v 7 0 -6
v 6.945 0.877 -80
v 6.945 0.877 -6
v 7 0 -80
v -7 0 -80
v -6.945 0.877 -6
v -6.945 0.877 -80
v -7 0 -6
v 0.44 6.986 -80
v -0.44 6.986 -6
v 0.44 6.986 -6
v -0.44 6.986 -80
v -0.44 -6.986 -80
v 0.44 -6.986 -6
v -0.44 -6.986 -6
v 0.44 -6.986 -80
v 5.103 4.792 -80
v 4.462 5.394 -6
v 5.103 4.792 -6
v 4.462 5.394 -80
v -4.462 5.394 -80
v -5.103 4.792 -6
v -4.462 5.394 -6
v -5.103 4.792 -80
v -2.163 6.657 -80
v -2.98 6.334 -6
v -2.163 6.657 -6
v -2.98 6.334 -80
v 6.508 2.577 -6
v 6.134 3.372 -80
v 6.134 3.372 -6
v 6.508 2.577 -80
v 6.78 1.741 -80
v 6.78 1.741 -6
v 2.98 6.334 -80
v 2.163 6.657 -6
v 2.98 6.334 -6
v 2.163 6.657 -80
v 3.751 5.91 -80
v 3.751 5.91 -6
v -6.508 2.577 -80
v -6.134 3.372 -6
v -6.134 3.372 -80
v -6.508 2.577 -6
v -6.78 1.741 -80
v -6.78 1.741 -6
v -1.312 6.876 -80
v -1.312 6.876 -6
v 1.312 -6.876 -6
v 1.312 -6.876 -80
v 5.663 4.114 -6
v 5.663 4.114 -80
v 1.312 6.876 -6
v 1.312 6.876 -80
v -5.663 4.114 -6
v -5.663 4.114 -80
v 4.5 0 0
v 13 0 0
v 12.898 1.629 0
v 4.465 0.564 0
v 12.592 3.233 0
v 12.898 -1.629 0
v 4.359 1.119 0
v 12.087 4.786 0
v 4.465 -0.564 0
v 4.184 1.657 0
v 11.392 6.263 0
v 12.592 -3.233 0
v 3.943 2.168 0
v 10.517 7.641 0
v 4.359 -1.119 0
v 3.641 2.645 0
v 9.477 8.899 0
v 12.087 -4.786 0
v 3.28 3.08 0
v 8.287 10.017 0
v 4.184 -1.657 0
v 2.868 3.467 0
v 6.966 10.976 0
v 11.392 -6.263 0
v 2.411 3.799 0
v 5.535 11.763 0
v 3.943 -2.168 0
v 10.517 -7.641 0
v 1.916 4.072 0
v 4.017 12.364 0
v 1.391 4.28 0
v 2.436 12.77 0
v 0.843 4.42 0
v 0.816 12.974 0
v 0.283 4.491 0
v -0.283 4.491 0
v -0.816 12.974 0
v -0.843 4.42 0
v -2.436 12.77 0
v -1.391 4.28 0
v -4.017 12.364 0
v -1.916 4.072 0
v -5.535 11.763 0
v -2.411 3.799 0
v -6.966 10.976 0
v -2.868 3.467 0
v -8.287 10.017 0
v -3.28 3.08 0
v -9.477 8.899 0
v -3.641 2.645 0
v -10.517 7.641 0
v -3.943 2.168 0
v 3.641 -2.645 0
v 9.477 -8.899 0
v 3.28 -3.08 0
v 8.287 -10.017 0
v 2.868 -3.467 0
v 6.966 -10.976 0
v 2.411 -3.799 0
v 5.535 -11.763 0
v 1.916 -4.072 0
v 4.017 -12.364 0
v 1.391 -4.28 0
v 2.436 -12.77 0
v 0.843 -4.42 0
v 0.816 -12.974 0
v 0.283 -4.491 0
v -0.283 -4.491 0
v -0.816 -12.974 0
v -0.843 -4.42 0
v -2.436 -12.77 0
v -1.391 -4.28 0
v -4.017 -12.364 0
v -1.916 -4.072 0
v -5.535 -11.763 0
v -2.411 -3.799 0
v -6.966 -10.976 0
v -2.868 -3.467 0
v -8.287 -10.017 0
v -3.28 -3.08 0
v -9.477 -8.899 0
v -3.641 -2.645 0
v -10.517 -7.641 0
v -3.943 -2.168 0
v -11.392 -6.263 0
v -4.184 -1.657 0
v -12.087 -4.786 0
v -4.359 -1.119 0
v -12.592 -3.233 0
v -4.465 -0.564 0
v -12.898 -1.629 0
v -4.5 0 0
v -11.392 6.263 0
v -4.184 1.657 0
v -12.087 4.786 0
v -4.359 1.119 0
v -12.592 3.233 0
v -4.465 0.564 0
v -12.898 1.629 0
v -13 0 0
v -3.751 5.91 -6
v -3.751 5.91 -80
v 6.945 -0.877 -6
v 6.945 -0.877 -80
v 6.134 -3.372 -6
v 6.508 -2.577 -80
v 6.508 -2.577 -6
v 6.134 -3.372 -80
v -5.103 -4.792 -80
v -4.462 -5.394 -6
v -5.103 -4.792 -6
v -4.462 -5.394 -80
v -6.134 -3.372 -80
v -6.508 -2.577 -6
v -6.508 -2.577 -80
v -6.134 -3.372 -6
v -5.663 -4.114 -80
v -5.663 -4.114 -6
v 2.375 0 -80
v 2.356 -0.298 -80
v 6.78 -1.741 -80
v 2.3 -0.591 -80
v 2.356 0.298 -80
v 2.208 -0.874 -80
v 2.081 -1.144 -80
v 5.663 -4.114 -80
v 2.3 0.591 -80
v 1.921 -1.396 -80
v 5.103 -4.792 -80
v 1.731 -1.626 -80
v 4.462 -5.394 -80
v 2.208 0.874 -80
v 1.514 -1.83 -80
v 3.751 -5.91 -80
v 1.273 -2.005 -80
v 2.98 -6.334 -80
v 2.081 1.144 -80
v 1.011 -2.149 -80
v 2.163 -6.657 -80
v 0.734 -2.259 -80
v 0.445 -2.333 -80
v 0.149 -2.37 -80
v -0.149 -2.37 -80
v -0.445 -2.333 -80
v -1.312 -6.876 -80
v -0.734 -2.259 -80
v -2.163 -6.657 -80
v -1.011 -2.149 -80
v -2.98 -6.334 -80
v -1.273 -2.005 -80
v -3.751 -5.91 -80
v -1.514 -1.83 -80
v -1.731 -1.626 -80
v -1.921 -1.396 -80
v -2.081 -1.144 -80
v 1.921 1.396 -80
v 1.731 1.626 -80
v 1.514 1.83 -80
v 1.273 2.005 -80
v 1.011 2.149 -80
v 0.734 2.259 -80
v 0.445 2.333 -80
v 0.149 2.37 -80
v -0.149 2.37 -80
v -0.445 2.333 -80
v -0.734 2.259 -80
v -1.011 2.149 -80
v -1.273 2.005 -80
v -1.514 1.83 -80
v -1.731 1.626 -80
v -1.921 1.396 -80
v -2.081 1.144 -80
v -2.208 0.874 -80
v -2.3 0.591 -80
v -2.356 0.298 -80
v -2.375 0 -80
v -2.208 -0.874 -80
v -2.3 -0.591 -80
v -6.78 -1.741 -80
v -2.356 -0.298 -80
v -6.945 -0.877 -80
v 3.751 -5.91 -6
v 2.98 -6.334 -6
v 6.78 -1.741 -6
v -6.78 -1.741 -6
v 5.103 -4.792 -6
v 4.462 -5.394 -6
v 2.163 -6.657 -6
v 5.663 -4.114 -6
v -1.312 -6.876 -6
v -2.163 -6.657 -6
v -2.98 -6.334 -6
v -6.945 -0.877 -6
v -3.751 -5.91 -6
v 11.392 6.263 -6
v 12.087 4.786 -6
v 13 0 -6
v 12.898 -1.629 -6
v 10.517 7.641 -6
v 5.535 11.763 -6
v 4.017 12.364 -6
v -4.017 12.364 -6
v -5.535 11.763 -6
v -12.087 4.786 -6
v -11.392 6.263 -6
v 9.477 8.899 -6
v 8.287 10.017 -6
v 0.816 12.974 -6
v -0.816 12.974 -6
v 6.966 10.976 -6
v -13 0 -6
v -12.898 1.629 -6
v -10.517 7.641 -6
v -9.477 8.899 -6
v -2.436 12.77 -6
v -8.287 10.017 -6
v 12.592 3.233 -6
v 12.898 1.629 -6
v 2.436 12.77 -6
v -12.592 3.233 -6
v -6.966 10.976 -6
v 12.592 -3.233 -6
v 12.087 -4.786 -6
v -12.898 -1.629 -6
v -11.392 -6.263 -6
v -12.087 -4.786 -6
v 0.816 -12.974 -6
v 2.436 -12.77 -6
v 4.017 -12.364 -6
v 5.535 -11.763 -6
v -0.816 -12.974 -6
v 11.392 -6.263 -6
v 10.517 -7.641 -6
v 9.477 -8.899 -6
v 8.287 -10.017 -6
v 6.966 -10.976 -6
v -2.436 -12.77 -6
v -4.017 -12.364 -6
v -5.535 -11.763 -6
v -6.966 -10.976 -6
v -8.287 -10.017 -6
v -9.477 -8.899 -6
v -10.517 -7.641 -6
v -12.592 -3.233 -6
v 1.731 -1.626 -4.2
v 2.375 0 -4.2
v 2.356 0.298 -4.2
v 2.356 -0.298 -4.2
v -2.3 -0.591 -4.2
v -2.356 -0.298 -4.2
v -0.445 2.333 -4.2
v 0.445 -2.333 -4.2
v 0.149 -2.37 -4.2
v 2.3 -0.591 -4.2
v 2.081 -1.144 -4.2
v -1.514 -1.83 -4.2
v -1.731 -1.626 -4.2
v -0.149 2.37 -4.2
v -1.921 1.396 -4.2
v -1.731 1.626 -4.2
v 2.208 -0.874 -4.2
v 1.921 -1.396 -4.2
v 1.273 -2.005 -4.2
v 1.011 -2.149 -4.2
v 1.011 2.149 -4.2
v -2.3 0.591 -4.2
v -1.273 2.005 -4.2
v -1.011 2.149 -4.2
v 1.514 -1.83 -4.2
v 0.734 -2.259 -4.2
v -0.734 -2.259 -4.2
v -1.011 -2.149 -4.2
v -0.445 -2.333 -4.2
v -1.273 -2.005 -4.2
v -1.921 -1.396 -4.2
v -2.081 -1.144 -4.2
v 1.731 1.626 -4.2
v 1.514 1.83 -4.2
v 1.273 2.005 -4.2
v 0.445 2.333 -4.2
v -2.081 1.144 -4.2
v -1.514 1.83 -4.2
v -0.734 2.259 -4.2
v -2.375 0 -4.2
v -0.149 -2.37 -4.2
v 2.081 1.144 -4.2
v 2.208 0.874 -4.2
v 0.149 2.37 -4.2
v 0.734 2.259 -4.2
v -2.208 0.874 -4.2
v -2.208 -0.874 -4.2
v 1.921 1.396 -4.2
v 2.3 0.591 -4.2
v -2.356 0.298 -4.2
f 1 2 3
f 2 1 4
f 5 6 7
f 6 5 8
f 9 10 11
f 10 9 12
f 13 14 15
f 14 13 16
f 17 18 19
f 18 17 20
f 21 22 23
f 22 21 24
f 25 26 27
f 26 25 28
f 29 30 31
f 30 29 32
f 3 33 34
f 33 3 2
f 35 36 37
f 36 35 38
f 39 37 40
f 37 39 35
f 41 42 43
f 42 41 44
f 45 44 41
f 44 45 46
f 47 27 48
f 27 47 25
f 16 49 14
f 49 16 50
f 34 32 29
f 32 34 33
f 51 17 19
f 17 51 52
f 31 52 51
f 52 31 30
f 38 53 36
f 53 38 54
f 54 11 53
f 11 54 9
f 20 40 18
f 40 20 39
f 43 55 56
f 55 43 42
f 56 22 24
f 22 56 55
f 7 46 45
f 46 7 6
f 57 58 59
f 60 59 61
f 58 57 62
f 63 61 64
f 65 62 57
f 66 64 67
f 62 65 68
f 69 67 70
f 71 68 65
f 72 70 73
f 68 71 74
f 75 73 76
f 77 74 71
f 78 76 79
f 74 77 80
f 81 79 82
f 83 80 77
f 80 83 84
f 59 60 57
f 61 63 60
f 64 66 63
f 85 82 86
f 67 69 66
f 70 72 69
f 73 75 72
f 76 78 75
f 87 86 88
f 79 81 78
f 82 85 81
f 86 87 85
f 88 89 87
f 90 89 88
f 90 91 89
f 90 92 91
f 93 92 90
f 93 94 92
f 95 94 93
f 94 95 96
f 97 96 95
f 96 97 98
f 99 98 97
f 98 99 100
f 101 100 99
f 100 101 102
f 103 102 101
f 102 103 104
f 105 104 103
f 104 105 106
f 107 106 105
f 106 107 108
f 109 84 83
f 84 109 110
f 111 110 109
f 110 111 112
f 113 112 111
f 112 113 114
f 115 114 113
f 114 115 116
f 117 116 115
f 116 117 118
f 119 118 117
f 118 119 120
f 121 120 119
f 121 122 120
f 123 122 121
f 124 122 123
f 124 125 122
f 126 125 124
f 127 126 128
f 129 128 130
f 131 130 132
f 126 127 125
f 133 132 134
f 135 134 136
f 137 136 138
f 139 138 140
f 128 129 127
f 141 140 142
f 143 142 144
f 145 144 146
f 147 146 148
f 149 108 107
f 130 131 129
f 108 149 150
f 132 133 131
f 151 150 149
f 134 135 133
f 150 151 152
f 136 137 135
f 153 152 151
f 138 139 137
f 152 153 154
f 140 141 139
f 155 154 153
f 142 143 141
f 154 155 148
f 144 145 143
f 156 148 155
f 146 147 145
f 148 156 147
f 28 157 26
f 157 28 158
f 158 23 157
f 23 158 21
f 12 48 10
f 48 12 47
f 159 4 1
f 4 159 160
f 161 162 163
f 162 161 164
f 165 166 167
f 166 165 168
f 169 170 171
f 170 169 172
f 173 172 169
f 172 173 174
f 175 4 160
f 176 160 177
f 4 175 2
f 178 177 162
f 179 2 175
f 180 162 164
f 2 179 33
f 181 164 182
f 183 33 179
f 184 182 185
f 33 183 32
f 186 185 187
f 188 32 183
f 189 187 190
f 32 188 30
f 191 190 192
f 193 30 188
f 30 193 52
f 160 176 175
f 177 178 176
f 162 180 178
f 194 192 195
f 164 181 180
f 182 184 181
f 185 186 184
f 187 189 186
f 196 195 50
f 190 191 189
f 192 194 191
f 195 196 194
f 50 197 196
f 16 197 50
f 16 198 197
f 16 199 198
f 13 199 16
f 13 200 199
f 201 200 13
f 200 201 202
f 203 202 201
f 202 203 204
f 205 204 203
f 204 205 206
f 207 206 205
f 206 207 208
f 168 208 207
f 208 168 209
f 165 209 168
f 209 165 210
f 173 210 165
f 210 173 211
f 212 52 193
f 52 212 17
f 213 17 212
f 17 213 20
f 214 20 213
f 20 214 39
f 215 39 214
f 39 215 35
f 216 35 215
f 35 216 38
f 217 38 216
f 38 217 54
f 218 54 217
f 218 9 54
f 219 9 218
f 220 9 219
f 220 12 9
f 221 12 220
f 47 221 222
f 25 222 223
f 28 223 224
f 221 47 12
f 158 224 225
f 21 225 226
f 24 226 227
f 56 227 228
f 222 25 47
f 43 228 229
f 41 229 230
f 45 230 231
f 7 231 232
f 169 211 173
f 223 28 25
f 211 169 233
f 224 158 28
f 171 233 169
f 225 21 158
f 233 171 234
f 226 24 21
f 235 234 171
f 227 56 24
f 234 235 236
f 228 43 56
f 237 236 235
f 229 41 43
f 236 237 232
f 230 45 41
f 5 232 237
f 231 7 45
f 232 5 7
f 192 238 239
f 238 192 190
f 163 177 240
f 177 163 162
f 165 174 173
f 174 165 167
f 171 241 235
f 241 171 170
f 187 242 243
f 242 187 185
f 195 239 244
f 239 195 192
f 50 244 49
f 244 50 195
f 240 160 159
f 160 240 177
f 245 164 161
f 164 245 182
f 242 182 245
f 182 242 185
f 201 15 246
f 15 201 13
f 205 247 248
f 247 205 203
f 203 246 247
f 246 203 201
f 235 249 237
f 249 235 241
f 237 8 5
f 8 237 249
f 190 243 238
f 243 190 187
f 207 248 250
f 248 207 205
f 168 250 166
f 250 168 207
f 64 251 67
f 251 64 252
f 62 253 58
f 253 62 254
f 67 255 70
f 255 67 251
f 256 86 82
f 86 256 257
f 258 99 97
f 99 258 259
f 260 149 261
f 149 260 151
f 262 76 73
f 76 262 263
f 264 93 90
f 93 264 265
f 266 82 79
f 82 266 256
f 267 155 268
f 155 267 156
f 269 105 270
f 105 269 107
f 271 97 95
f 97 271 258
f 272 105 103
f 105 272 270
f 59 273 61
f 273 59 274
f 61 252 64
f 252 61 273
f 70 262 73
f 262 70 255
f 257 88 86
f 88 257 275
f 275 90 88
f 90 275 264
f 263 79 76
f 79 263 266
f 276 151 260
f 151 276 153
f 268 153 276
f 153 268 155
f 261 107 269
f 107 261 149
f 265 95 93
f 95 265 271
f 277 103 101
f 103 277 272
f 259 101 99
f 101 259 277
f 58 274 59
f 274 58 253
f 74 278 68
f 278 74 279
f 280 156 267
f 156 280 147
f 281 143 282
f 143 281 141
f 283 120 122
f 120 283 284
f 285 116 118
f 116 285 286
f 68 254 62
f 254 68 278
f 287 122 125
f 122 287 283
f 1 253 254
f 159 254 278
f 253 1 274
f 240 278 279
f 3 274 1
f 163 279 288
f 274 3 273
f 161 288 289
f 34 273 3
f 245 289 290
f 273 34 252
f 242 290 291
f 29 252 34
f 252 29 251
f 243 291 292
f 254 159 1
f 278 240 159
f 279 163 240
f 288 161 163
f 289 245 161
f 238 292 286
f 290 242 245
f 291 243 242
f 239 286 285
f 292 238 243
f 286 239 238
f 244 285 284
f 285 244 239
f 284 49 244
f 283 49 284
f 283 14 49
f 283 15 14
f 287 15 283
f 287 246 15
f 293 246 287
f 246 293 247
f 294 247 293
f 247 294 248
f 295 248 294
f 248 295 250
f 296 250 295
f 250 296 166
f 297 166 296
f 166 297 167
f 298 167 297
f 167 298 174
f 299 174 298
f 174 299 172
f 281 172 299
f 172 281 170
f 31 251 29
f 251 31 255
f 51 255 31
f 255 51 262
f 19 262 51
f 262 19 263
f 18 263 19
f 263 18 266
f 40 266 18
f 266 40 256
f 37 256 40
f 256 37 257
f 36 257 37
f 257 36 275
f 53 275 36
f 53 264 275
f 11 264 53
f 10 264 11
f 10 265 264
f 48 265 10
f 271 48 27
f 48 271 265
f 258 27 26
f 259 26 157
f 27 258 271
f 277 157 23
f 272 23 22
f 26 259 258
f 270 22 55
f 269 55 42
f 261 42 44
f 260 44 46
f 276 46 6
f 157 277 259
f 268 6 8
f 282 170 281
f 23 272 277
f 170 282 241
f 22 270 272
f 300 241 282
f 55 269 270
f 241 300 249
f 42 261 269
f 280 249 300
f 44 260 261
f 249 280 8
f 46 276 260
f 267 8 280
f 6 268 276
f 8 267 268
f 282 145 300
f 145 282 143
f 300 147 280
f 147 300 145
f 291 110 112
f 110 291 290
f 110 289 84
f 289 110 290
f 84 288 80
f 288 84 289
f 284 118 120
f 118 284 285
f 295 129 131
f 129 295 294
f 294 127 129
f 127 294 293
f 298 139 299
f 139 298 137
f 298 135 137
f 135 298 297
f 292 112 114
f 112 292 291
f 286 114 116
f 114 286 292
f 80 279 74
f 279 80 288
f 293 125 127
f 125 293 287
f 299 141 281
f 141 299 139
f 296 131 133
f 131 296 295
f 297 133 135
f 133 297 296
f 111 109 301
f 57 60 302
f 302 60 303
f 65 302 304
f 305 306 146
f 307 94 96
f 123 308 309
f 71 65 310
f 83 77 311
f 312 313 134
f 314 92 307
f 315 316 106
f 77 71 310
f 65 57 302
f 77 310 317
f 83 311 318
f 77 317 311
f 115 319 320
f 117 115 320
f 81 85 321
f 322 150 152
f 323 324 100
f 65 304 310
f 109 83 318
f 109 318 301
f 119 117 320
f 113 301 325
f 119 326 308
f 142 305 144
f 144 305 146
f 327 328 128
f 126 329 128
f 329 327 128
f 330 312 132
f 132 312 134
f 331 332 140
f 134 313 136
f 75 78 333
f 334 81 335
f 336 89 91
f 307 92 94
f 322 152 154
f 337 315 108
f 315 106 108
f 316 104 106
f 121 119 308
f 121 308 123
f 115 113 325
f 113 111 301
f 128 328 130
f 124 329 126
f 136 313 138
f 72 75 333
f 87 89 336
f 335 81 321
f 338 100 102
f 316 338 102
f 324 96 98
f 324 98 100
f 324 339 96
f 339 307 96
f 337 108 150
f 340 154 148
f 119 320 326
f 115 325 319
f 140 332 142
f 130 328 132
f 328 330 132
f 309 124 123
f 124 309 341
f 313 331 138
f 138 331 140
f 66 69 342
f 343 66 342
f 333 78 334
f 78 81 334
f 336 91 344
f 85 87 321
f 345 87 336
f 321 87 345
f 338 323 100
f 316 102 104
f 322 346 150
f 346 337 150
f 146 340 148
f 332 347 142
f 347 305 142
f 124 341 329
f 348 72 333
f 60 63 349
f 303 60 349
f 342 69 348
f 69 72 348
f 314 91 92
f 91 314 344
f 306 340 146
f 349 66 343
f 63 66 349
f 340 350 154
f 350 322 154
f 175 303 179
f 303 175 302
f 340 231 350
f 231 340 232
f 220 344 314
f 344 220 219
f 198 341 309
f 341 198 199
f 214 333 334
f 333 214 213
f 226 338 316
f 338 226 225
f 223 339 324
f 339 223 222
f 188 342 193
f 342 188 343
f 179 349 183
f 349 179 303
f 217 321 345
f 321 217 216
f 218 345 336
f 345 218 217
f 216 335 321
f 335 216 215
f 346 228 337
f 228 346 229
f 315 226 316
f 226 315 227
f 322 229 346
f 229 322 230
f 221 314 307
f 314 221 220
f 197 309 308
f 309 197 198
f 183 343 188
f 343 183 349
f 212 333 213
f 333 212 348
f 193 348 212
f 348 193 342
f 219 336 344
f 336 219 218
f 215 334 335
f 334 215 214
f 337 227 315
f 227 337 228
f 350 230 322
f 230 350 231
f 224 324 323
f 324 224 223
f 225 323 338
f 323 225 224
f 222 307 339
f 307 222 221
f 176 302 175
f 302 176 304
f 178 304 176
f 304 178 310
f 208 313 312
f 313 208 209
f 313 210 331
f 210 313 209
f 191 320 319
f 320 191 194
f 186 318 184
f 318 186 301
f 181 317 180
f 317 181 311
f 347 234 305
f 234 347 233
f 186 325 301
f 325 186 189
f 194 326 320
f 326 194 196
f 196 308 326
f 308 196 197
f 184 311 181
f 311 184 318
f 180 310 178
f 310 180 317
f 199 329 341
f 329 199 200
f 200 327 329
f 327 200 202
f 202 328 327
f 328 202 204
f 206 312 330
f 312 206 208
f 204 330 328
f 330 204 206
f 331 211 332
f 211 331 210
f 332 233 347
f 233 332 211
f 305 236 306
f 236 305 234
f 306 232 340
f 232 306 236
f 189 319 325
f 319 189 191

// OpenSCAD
$fn = 50;


difference() {
	union() {
		translate(v = [0, 0, -80.0000000000]) {
			cylinder(h = 80, r = 7.0000000000);
		}
		translate(v = [0, 0, -6.0000000000]) {
			cylinder(h = 6, r = 13.0000000000);
		}
	}
	union() {
		translate(v = [0, 0, 0]) {
			rotate(a = [0, 0, 0]) {
				difference() {
					union() {
						#translate(v = [0, 0, -80.0000000000]) {
							cylinder(h = 80, r = 2.2500000000);
						}
						#translate(v = [0, 0, -4.2000000000]) {
							cylinder(h = 4.2000000000, r1 = 2.3750000000, r2 = 4.5000000000);
						}
						#translate(v = [0, 0, -80.0000000000]) {
							cylinder(h = 80, r = 2.3750000000);
						}
						#translate(v = [0, 0, -80.0000000000]) {
							cylinder(h = 80, r = 2.2500000000);
						}
					}
					union();
				}
			}
		}
	}
}
